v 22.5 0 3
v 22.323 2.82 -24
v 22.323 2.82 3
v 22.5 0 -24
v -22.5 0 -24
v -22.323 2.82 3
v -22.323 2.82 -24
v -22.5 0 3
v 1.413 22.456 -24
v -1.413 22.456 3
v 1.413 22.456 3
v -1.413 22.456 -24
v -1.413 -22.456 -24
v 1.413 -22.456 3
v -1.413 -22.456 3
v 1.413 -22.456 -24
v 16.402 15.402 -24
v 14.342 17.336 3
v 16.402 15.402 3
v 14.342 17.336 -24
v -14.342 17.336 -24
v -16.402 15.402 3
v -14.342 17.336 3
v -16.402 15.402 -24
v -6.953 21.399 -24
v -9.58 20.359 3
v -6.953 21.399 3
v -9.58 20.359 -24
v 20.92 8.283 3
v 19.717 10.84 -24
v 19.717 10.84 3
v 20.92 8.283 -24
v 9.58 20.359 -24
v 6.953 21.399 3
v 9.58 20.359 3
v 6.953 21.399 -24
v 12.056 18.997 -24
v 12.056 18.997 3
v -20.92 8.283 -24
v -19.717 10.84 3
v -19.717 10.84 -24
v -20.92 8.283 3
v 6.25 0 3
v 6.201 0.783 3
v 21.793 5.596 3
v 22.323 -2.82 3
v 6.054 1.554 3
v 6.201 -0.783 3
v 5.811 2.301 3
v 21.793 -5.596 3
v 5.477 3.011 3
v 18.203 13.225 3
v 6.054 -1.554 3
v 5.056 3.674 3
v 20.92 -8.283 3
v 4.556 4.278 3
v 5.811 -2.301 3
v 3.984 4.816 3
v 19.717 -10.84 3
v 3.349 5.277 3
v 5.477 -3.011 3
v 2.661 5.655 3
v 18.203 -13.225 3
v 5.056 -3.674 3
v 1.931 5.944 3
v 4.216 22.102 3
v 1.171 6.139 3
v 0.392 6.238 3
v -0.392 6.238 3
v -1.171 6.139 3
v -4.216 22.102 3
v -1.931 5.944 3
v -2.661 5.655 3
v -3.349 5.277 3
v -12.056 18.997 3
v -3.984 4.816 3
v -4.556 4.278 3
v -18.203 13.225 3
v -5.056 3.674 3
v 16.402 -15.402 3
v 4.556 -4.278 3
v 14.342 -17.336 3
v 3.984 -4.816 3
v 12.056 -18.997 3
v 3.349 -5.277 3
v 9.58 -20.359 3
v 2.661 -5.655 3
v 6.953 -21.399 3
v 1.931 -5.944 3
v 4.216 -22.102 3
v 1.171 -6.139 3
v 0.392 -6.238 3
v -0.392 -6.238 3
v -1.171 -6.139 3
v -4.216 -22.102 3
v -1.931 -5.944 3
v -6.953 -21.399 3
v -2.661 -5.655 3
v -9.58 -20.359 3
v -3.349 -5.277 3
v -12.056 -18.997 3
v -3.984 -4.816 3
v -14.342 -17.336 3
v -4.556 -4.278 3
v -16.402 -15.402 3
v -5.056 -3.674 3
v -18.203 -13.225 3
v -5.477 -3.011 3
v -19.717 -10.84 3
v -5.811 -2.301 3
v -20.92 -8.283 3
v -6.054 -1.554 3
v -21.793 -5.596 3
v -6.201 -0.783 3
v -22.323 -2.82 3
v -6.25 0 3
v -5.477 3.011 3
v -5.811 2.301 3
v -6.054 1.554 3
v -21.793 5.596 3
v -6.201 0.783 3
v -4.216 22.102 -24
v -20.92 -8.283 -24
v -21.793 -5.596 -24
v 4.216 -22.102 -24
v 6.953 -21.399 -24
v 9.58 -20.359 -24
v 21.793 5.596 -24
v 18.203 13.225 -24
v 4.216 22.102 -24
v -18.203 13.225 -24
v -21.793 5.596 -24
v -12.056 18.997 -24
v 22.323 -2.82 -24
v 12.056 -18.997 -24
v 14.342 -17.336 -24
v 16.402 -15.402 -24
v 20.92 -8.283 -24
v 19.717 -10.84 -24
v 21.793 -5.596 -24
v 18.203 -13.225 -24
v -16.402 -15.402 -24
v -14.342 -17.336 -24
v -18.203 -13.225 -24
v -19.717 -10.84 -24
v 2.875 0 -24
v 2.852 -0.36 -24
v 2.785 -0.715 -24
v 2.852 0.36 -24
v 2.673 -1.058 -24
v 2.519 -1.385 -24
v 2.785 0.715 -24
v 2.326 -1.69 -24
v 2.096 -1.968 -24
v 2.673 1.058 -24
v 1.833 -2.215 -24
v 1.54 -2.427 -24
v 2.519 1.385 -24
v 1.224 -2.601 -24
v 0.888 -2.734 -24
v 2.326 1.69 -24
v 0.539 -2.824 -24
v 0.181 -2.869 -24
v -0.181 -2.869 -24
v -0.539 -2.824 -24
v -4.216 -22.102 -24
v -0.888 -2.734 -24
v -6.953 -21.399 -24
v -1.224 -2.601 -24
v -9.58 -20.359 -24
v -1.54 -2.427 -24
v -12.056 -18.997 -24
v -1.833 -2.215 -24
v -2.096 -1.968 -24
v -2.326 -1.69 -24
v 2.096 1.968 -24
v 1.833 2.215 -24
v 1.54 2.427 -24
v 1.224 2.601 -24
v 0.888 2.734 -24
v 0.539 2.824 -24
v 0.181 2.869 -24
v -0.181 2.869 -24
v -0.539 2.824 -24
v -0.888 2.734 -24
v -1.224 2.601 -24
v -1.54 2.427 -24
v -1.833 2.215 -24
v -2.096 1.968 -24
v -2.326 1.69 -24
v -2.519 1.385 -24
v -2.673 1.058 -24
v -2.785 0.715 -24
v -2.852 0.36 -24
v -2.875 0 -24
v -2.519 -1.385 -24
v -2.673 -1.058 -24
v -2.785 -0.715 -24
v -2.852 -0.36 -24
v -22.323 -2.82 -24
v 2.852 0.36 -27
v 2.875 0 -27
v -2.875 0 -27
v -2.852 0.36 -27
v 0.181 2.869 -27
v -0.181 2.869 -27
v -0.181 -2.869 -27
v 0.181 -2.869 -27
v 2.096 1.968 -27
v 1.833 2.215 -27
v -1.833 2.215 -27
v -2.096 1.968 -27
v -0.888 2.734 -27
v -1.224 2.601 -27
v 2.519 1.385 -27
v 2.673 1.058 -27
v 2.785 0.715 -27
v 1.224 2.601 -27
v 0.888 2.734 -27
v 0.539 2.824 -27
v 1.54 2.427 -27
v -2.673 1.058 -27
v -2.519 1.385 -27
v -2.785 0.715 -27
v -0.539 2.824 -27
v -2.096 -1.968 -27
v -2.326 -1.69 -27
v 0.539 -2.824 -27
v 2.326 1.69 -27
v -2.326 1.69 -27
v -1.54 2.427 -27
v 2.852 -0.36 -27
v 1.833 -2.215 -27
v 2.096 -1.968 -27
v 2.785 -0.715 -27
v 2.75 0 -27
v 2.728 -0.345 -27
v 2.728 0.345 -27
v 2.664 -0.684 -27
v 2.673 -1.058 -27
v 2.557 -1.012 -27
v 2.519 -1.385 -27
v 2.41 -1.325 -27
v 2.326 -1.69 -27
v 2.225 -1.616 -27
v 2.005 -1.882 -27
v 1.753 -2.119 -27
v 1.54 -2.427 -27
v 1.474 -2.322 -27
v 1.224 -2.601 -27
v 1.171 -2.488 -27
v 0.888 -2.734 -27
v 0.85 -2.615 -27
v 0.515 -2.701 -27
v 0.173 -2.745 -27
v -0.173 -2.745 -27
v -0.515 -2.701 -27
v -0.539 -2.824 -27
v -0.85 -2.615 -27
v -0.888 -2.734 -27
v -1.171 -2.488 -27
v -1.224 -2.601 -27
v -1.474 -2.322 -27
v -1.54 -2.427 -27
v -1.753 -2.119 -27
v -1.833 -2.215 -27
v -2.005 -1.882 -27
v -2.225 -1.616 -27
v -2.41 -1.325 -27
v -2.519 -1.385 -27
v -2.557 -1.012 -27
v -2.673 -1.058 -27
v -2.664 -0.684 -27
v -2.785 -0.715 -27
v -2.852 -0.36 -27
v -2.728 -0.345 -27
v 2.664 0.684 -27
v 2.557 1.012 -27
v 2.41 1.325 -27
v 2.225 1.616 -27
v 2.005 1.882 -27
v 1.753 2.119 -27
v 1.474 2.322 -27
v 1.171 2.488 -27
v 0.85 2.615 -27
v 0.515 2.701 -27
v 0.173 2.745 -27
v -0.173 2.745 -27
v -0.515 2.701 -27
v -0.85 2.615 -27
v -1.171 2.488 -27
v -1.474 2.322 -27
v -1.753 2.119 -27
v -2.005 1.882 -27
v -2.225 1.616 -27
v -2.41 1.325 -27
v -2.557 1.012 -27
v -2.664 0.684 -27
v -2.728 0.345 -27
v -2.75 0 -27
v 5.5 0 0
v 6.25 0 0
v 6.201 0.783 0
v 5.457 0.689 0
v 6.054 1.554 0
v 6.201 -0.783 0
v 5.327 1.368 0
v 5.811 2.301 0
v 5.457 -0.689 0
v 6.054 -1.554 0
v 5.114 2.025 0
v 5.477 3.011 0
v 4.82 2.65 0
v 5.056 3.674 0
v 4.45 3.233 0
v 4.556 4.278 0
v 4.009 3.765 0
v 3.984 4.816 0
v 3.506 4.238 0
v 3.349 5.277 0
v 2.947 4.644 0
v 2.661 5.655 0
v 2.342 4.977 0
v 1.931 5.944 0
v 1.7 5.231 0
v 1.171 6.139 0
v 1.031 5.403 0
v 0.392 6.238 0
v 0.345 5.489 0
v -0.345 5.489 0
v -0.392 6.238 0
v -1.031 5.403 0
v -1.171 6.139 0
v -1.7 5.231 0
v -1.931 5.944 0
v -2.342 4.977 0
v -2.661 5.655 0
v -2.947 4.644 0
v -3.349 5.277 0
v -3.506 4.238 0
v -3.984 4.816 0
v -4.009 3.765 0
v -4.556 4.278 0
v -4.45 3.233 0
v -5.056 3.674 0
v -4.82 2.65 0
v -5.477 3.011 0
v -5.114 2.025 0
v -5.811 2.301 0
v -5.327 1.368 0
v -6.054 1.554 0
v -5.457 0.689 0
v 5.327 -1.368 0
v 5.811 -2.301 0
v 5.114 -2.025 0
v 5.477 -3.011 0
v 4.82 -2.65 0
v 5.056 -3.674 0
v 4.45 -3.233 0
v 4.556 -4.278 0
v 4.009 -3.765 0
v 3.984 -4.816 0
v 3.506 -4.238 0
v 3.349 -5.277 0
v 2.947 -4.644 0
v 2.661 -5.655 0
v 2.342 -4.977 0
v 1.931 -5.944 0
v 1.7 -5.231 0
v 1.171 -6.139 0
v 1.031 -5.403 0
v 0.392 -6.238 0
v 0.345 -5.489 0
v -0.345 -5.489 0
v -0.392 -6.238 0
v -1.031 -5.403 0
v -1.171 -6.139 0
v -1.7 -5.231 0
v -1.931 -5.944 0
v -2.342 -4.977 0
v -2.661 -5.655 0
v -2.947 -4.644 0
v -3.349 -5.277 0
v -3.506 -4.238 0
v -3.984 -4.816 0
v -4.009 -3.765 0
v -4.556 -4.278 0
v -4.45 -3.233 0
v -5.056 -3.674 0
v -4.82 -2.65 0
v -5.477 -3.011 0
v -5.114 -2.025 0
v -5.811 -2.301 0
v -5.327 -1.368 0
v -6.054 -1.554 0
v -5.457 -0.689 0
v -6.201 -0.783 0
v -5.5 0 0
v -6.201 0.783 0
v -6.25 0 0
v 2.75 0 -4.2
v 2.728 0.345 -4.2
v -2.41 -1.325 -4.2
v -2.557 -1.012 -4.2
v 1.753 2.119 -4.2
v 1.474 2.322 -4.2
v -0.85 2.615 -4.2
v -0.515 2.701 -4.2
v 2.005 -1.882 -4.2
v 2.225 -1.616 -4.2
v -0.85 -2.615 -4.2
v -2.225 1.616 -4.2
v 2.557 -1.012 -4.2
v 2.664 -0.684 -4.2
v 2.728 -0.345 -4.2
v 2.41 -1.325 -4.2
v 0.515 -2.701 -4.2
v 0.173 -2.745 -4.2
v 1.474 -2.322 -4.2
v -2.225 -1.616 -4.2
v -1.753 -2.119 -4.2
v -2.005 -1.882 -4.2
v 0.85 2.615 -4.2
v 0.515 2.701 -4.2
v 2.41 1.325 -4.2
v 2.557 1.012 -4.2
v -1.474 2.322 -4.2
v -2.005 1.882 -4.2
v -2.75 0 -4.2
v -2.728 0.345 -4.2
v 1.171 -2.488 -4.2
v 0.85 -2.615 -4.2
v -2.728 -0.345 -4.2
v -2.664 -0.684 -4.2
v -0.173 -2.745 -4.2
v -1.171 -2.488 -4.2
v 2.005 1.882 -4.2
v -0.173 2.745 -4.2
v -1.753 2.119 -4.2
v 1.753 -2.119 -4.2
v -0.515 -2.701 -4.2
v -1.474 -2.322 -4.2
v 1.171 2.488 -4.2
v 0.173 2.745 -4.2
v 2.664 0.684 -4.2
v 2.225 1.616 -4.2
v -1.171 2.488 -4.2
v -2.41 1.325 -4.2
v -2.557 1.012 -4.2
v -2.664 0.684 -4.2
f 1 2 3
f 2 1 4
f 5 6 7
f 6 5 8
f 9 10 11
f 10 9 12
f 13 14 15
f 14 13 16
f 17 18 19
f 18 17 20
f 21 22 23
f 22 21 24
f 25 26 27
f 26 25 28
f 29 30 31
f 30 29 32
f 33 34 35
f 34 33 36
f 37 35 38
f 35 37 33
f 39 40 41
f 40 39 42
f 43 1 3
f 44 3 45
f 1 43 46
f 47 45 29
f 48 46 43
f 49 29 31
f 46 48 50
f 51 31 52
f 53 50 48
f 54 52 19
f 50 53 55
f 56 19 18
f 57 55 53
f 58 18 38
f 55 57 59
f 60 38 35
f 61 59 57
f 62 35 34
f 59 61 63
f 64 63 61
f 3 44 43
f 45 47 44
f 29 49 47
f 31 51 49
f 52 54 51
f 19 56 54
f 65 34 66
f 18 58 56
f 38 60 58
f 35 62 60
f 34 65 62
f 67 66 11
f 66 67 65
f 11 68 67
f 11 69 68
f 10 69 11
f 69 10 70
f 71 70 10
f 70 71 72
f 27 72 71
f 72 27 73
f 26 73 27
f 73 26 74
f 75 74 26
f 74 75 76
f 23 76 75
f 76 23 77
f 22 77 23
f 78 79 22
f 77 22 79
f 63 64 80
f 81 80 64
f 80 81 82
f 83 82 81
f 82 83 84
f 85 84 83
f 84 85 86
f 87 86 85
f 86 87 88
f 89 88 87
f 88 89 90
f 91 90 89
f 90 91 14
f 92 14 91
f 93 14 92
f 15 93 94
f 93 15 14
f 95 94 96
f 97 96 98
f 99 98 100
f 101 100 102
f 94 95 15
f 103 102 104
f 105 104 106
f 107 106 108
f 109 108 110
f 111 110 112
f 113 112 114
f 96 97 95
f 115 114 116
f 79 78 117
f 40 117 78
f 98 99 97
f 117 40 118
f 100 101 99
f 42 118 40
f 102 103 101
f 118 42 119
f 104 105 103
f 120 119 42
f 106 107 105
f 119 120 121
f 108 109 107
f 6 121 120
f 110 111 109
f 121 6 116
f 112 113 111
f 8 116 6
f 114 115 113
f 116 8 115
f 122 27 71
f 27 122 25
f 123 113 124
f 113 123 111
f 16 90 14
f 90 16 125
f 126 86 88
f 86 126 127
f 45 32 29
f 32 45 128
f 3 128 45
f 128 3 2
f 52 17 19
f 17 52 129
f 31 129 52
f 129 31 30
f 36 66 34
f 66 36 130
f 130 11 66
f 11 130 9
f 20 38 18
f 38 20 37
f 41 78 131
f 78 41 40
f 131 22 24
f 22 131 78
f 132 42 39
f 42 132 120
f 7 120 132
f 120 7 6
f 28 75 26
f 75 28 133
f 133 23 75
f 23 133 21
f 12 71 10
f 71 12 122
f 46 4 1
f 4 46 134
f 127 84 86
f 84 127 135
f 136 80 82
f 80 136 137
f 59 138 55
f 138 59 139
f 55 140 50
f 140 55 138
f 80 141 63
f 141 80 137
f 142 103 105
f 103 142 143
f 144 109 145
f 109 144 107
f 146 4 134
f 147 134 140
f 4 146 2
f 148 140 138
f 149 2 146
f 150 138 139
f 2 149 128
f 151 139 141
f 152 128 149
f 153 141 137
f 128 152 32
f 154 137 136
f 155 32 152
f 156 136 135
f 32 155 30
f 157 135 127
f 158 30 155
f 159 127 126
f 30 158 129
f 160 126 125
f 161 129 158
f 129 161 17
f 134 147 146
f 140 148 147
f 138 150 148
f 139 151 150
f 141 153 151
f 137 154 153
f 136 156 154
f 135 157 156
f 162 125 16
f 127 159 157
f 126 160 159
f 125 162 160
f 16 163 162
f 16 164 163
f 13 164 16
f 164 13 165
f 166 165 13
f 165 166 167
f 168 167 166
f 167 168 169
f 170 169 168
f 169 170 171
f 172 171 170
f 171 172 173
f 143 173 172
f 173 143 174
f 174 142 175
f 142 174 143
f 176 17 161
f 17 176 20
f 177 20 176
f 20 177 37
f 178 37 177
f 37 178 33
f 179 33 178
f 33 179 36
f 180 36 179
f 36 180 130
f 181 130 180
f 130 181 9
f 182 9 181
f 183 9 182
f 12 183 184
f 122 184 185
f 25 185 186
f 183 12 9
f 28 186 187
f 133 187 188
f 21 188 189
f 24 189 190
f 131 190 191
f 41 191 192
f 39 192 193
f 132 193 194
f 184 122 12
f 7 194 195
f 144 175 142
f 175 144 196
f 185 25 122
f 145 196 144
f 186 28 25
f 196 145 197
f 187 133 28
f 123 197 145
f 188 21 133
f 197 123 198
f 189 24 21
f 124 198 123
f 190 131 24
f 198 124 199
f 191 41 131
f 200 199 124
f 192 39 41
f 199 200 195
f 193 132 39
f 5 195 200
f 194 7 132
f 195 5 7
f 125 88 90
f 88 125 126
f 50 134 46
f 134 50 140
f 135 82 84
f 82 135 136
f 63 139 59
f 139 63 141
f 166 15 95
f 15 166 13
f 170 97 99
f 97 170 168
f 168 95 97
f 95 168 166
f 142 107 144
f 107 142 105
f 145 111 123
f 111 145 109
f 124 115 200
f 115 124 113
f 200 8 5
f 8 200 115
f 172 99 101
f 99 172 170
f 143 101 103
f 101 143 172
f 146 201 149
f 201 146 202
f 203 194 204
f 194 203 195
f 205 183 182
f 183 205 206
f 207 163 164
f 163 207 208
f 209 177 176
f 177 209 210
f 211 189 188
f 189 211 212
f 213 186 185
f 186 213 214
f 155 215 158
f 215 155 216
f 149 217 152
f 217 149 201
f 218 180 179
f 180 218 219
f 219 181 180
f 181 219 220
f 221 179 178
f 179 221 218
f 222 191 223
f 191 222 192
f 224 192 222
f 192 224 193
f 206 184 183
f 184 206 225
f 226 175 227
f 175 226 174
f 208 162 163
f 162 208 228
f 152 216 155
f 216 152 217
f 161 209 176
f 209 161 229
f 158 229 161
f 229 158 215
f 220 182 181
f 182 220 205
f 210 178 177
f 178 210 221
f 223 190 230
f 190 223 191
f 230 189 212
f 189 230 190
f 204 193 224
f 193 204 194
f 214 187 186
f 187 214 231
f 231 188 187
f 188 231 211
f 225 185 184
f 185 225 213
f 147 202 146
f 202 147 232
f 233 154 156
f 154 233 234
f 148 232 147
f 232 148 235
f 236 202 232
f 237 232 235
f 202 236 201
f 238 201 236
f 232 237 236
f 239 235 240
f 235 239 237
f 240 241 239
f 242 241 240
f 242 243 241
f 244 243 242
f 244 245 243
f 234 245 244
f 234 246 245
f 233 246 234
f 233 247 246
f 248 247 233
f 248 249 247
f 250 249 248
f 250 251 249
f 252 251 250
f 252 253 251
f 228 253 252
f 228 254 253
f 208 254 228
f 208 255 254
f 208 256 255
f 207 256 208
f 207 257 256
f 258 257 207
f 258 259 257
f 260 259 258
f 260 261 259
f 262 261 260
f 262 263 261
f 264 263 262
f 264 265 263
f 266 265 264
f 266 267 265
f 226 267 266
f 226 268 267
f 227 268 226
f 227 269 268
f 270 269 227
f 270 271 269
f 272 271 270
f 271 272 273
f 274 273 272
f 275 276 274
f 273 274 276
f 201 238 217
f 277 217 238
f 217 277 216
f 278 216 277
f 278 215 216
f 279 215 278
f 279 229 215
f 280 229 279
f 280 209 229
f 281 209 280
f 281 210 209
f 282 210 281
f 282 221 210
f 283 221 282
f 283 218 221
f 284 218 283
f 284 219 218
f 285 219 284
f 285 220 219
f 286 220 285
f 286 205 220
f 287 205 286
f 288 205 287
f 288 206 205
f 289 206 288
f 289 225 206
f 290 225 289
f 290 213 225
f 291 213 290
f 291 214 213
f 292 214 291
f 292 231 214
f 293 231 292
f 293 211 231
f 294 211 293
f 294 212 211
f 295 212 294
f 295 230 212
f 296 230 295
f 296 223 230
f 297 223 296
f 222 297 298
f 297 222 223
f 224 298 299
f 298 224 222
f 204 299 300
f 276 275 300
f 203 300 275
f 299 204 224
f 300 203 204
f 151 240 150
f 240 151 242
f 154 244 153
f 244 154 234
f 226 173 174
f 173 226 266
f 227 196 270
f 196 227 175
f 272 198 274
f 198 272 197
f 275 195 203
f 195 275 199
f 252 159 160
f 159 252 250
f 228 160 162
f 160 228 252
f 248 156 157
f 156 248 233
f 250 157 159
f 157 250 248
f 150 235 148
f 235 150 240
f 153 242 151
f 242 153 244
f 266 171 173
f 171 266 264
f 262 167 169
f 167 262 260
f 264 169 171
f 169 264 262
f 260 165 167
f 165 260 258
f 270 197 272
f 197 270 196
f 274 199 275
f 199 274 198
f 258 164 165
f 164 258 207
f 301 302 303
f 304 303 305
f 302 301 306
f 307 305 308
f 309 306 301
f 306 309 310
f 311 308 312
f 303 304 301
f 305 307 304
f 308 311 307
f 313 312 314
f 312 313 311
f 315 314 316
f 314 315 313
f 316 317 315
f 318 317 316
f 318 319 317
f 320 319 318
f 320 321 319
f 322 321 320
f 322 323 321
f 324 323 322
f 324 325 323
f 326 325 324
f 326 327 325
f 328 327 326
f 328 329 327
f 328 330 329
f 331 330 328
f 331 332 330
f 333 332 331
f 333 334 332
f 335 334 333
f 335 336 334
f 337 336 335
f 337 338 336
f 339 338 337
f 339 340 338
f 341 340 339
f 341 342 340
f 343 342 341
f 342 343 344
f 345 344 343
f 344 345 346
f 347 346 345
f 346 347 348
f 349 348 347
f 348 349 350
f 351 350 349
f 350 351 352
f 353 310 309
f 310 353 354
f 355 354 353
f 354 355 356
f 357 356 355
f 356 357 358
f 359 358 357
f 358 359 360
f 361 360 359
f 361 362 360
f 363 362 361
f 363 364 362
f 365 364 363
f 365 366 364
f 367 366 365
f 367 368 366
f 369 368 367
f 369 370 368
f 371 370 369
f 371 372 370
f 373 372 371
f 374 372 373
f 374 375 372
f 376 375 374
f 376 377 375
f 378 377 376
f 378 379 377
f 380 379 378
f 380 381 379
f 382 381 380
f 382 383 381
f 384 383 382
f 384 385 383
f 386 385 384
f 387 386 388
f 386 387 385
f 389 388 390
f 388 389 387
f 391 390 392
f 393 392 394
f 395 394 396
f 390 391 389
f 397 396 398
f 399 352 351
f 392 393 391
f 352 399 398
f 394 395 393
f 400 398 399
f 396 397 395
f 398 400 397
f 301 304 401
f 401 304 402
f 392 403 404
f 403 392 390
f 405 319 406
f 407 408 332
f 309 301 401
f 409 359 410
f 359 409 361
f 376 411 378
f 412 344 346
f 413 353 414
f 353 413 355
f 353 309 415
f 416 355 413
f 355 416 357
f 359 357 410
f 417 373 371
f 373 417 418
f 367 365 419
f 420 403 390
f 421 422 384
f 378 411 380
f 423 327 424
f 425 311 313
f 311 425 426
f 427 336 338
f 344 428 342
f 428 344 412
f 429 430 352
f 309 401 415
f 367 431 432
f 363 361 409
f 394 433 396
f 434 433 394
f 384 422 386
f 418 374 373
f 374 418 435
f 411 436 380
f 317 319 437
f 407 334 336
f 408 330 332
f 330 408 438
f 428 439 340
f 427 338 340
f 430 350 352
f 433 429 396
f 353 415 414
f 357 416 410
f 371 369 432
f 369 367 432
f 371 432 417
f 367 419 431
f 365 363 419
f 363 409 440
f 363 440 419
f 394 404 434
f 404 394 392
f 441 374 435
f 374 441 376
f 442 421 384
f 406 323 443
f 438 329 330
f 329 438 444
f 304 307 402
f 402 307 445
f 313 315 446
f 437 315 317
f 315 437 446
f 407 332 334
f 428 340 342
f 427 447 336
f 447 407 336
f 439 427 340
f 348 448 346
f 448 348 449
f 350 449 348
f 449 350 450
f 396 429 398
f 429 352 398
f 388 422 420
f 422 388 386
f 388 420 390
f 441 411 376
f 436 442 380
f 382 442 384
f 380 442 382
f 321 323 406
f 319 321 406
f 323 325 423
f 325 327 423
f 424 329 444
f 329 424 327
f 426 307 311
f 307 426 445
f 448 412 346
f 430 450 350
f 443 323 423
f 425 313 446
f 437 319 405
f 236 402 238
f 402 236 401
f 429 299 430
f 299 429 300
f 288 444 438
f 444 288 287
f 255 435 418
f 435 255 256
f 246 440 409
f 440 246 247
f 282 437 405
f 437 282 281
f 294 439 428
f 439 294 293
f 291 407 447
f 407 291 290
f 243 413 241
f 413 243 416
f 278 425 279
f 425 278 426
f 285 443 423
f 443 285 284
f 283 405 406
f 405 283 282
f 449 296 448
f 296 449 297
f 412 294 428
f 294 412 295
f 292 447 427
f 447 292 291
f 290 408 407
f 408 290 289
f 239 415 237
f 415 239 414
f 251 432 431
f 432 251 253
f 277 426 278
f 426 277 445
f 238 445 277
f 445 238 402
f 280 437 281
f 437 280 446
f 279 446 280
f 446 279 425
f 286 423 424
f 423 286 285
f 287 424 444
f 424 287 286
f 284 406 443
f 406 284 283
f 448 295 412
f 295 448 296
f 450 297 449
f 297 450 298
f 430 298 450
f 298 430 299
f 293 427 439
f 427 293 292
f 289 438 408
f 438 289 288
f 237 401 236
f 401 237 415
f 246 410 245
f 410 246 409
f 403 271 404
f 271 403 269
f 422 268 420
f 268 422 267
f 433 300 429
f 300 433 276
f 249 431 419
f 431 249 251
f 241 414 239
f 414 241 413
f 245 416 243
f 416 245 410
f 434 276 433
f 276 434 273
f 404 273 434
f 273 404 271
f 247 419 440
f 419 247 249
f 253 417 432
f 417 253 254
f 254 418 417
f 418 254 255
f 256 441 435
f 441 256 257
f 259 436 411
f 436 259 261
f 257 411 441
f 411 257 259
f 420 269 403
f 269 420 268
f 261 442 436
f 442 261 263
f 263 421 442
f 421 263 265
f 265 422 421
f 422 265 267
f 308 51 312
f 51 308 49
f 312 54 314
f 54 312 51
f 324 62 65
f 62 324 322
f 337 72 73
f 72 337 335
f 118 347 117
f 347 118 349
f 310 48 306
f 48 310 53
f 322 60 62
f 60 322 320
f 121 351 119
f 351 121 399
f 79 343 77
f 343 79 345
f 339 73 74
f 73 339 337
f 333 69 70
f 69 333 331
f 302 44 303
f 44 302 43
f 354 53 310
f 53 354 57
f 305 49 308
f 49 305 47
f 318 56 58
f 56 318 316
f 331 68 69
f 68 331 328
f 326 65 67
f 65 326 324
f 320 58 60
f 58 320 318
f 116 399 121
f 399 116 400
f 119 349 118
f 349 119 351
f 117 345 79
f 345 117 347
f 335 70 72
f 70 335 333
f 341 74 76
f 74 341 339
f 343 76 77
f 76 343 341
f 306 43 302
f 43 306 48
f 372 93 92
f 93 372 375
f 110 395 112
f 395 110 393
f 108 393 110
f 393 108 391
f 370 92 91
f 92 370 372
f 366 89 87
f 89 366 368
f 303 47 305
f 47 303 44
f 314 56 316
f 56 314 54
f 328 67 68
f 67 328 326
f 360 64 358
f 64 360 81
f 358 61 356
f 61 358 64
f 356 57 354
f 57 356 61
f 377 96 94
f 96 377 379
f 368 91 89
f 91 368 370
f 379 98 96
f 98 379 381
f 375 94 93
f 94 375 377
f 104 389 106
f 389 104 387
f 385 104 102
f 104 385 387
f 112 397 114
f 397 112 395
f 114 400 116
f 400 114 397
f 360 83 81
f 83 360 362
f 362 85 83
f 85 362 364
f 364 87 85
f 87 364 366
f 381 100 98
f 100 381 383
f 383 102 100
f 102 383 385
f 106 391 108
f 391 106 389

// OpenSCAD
$fn = 50;

difference() {
	union() {
		translate(v = [0, 0, -24.0]) {
			cylinder(h = 27, r = 22.5);
		}
		#translate(v = [0, 0, -27.0]) {
			cylinder(h = 27, r = 2.875);
		}
	}
	union() {
		translate(v = [0, 0, 0]) {
			rotate(a = [0, 0, 0]) {
				difference() {
					union() {
						translate(v = [0, 0, -27.0]) {
							cylinder(h = 27, r = 2.25);
						}
						translate(v = [0, 0, -4.2]) {
							cylinder(h = 4.2, r1 = 2.75, r2 = 5.5);
						}
						translate(v = [0, 0, -27.0]) {
							cylinder(h = 27, r = 2.75);
						}
						translate(v = [0, 0, -27.0]) {
							cylinder(h = 27, r = 2.25);
						}
					}
					union();
				}
			}
		}
		#cylinder(h = 3, r = 6.25);
	}
}
